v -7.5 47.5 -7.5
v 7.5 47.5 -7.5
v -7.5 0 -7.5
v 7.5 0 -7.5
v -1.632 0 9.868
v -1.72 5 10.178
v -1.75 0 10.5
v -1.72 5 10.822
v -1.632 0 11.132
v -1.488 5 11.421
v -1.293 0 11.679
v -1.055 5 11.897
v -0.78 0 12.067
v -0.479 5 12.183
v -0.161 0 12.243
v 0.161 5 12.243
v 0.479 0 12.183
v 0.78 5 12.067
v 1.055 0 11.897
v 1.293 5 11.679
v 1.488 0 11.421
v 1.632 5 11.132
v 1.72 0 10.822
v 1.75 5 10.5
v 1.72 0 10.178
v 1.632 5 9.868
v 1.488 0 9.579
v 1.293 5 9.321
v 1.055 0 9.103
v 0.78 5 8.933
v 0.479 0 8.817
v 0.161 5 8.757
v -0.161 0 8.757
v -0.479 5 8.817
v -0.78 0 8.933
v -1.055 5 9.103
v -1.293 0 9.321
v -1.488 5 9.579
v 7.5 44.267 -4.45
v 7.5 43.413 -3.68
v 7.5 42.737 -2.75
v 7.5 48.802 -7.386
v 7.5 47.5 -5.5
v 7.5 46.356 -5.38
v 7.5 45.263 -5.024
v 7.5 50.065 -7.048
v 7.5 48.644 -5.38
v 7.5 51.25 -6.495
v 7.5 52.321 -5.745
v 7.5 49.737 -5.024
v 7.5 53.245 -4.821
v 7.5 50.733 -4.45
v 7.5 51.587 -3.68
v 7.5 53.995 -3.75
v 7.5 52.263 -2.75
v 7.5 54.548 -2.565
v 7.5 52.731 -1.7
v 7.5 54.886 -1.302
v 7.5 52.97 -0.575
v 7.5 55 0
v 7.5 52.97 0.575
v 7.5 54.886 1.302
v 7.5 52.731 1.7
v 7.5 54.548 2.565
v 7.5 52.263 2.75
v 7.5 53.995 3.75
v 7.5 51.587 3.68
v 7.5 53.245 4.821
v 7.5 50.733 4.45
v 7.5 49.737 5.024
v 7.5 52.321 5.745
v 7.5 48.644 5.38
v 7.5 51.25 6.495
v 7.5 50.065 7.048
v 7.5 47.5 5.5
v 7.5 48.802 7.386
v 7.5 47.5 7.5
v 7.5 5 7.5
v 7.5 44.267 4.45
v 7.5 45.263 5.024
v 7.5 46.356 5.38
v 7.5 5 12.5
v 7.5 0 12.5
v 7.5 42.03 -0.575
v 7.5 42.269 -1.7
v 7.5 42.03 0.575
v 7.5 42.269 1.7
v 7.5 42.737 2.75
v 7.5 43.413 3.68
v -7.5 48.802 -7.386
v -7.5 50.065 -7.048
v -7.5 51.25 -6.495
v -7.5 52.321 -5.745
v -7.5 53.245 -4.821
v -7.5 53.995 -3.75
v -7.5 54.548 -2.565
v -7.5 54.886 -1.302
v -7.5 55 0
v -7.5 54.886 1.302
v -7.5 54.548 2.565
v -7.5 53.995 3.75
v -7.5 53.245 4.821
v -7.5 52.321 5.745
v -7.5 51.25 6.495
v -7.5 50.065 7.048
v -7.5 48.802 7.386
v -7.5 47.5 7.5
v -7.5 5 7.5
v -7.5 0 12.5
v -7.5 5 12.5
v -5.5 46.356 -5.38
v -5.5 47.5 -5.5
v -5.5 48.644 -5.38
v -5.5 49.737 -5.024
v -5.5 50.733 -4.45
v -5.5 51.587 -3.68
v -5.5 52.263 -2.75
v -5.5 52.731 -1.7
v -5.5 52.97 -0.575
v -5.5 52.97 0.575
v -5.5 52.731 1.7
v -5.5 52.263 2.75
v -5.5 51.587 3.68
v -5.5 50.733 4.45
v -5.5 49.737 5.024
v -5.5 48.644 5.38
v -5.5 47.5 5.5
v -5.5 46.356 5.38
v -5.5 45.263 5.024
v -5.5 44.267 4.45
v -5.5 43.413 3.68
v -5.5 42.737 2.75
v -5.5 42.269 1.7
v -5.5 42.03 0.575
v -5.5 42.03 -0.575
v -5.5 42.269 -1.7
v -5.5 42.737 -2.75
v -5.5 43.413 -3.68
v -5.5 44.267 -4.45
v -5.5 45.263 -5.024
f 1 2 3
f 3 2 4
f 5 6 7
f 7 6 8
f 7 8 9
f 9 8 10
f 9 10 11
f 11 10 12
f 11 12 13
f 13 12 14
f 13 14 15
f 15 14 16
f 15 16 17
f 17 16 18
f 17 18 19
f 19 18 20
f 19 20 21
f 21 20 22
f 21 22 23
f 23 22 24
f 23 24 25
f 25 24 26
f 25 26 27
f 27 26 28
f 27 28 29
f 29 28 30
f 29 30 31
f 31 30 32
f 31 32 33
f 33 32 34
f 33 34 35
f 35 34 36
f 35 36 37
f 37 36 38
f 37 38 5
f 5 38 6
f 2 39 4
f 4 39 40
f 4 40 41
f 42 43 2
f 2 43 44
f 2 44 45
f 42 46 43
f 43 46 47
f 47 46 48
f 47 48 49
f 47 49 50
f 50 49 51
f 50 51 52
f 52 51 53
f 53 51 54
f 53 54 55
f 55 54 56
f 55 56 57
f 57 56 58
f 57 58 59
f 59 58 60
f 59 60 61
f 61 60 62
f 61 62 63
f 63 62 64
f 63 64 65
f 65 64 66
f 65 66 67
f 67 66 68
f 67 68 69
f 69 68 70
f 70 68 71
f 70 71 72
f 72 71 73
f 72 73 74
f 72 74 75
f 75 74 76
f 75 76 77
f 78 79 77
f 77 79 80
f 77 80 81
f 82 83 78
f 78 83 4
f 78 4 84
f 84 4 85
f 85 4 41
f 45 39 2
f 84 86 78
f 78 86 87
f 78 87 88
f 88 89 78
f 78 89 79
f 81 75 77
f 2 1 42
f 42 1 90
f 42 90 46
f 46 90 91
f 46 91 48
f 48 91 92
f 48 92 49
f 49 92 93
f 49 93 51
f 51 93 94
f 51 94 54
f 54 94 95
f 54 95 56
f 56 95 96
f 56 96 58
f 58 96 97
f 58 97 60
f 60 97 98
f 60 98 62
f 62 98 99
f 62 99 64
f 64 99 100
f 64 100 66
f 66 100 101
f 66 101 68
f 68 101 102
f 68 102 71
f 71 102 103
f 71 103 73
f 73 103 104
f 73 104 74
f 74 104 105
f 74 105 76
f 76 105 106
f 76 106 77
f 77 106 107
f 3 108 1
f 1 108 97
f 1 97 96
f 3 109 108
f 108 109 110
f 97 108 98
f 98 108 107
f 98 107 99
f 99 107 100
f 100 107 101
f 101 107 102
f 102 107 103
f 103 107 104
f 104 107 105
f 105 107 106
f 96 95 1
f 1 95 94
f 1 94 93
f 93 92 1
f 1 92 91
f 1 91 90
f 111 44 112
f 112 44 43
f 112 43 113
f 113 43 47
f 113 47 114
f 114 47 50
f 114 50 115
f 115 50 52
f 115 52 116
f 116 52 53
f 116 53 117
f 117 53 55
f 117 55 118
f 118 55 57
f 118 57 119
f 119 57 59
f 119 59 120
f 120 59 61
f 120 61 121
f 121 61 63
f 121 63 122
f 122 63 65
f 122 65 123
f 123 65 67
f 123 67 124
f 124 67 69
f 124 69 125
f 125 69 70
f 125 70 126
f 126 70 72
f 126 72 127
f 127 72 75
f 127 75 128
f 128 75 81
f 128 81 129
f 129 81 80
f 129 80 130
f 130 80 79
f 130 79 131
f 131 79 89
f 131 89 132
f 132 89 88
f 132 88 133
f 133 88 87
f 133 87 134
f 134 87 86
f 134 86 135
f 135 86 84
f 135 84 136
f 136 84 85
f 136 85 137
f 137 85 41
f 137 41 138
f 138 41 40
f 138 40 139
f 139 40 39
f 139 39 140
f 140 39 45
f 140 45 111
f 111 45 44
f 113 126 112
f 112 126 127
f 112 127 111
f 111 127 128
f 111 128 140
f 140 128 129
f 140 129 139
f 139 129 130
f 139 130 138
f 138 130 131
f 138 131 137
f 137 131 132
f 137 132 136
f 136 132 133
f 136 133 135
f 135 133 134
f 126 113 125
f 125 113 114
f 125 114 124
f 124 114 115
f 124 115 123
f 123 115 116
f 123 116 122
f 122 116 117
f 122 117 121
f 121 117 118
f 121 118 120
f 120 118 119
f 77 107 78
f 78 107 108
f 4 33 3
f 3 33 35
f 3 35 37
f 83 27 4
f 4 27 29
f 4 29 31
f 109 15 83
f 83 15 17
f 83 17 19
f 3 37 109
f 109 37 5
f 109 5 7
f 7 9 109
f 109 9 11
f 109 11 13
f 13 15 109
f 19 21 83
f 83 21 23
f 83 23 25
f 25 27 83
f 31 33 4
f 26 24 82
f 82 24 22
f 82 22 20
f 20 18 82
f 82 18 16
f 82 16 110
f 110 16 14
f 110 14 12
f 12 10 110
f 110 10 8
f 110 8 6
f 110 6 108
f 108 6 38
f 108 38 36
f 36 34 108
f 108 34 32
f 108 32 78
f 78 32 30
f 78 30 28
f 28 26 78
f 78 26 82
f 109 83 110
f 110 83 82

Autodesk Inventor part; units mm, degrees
ref_plane "YZ Plane" through (0, 0, 0) normal (1, 0, 0) x (0, 1, 0)
ref_plane "XZ Plane" through (0, 0, 0) normal (0, 1, 0) x (-1, 0, 0)
ref_plane "XY Plane" through (0, 0, 0) normal (0, 0, 1) x (1, 0, 0)
sketch "Sketch1" plane through (0, 0, 0) normal (0, 1, 0) x (-1, 0, 0)
  line L0 (7.5, 12.5) -> (-7.5, 12.5)
  line L1 (-7.5, 12.5) -> (-7.5, -12.5)
  line L2 (-7.5, -12.5) -> (7.5, -12.5)
  line L3 (7.5, -12.5) -> (7.5, 12.5)
  line L4 (7.5, 12.5) -> (-7.5, -12.5) construction
  line L5 (-7.5, 12.5) -> (7.5, -12.5) construction
  point P0 (0, 0)
  dimension "d0" = 15
  dimension "d1" = 25
extrude "Extrusion1" add sketch "Sketch1" along normal blind 5
sketch "Sketch2" plane through (0, 5, 0) normal (0, 1, 0) x (1, 0, 0)
  line L0 (-7.5, -12.5) -> (7.5, -12.5) projected
  line L1 (-7.5, 12.5) -> (-7.5, -12.5) projected
  line L2 (7.5, 7.5) -> (-7.5, 7.5)
  line L3 (-7.5, 7.5) -> (-7.5, -7.5)
  line L4 (-7.5, -7.5) -> (7.5, -7.5)
  line L5 (7.5, -7.5) -> (7.5, 7.5)
  line L6 (7.5, 7.5) -> (-7.5, -7.5) construction
  line L7 (-7.5, 7.5) -> (7.5, -7.5) construction
  point P0 (0, 0)
  dimension "d5" = 15
extrude "Extrusion2" add sketch "Sketch2" along normal blind 50
sketch "Sketch3" plane through (7.5, 0, 12.5) normal (1, 0, 0) x (0, 0, -1)
  circle A0 centre (12.5, 47.5) radius 5.5
  point P0 (12.5, 0)
  point P1 (14.5, 47.5)
  dimension "d9" = 11
extrude "Extrusion3" cut sketch "Sketch3" against normal blind 13
fillet "Fillet1" radius 7.5 2 edges at (0, 55, -7.5) (0, 55, 7.5)
sketch "Sketch5" plane through (0, 5, 0) normal (0, 1, 0) x (1, 0, 0)
  line L0 (7.5, -7.5) -> (-7.5, -7.5) projected
  line L1 (-7.5, -12.5) -> (7.5, -12.5) projected
  line L2 (-7.5, 7.5) -> (7.5, 7.5) projected
  line L3 (7.5, 12.5) -> (-7.5, 12.5) projected
  point P0 (0, 0)
  point P1 (0, -10.5)
  point P2 (0, 10.5)
hole "Hole2" at (0, 5, 10.5) at (0, 5, -10.5) direction (0, -1, 0) diameter 3.5 end through all
sketch "Sketch6" plane through (0, 5, 0) normal (0, 1, 0) x (1, 0, 0)
  point P0 (0, 0)
sketch "Sketch8" plane through (0, 5, 0) normal (0, 1, 0) x (1, 0, 0)
  line L0 (-7.5, 12.5) -> (-7.5, 7.5) projected
  line L1 (7.5, 12.5) -> (-7.5, 12.5) projected
  line L2 (-7.5, 7.5) -> (7.5, 7.5)
  line L3 (7.5, 7.5) -> (7.5, 12.5)
  line L4 (7.5, 12.5) -> (-7.5, 12.5)
  line L5 (-7.5, 12.5) -> (-7.5, 7.5)
  point P0 (0, 0)
extrude "Extrusion5" cut sketch "Sketch8" against normal through all
properties part number "Holder_slim_1_fod_venstre"
